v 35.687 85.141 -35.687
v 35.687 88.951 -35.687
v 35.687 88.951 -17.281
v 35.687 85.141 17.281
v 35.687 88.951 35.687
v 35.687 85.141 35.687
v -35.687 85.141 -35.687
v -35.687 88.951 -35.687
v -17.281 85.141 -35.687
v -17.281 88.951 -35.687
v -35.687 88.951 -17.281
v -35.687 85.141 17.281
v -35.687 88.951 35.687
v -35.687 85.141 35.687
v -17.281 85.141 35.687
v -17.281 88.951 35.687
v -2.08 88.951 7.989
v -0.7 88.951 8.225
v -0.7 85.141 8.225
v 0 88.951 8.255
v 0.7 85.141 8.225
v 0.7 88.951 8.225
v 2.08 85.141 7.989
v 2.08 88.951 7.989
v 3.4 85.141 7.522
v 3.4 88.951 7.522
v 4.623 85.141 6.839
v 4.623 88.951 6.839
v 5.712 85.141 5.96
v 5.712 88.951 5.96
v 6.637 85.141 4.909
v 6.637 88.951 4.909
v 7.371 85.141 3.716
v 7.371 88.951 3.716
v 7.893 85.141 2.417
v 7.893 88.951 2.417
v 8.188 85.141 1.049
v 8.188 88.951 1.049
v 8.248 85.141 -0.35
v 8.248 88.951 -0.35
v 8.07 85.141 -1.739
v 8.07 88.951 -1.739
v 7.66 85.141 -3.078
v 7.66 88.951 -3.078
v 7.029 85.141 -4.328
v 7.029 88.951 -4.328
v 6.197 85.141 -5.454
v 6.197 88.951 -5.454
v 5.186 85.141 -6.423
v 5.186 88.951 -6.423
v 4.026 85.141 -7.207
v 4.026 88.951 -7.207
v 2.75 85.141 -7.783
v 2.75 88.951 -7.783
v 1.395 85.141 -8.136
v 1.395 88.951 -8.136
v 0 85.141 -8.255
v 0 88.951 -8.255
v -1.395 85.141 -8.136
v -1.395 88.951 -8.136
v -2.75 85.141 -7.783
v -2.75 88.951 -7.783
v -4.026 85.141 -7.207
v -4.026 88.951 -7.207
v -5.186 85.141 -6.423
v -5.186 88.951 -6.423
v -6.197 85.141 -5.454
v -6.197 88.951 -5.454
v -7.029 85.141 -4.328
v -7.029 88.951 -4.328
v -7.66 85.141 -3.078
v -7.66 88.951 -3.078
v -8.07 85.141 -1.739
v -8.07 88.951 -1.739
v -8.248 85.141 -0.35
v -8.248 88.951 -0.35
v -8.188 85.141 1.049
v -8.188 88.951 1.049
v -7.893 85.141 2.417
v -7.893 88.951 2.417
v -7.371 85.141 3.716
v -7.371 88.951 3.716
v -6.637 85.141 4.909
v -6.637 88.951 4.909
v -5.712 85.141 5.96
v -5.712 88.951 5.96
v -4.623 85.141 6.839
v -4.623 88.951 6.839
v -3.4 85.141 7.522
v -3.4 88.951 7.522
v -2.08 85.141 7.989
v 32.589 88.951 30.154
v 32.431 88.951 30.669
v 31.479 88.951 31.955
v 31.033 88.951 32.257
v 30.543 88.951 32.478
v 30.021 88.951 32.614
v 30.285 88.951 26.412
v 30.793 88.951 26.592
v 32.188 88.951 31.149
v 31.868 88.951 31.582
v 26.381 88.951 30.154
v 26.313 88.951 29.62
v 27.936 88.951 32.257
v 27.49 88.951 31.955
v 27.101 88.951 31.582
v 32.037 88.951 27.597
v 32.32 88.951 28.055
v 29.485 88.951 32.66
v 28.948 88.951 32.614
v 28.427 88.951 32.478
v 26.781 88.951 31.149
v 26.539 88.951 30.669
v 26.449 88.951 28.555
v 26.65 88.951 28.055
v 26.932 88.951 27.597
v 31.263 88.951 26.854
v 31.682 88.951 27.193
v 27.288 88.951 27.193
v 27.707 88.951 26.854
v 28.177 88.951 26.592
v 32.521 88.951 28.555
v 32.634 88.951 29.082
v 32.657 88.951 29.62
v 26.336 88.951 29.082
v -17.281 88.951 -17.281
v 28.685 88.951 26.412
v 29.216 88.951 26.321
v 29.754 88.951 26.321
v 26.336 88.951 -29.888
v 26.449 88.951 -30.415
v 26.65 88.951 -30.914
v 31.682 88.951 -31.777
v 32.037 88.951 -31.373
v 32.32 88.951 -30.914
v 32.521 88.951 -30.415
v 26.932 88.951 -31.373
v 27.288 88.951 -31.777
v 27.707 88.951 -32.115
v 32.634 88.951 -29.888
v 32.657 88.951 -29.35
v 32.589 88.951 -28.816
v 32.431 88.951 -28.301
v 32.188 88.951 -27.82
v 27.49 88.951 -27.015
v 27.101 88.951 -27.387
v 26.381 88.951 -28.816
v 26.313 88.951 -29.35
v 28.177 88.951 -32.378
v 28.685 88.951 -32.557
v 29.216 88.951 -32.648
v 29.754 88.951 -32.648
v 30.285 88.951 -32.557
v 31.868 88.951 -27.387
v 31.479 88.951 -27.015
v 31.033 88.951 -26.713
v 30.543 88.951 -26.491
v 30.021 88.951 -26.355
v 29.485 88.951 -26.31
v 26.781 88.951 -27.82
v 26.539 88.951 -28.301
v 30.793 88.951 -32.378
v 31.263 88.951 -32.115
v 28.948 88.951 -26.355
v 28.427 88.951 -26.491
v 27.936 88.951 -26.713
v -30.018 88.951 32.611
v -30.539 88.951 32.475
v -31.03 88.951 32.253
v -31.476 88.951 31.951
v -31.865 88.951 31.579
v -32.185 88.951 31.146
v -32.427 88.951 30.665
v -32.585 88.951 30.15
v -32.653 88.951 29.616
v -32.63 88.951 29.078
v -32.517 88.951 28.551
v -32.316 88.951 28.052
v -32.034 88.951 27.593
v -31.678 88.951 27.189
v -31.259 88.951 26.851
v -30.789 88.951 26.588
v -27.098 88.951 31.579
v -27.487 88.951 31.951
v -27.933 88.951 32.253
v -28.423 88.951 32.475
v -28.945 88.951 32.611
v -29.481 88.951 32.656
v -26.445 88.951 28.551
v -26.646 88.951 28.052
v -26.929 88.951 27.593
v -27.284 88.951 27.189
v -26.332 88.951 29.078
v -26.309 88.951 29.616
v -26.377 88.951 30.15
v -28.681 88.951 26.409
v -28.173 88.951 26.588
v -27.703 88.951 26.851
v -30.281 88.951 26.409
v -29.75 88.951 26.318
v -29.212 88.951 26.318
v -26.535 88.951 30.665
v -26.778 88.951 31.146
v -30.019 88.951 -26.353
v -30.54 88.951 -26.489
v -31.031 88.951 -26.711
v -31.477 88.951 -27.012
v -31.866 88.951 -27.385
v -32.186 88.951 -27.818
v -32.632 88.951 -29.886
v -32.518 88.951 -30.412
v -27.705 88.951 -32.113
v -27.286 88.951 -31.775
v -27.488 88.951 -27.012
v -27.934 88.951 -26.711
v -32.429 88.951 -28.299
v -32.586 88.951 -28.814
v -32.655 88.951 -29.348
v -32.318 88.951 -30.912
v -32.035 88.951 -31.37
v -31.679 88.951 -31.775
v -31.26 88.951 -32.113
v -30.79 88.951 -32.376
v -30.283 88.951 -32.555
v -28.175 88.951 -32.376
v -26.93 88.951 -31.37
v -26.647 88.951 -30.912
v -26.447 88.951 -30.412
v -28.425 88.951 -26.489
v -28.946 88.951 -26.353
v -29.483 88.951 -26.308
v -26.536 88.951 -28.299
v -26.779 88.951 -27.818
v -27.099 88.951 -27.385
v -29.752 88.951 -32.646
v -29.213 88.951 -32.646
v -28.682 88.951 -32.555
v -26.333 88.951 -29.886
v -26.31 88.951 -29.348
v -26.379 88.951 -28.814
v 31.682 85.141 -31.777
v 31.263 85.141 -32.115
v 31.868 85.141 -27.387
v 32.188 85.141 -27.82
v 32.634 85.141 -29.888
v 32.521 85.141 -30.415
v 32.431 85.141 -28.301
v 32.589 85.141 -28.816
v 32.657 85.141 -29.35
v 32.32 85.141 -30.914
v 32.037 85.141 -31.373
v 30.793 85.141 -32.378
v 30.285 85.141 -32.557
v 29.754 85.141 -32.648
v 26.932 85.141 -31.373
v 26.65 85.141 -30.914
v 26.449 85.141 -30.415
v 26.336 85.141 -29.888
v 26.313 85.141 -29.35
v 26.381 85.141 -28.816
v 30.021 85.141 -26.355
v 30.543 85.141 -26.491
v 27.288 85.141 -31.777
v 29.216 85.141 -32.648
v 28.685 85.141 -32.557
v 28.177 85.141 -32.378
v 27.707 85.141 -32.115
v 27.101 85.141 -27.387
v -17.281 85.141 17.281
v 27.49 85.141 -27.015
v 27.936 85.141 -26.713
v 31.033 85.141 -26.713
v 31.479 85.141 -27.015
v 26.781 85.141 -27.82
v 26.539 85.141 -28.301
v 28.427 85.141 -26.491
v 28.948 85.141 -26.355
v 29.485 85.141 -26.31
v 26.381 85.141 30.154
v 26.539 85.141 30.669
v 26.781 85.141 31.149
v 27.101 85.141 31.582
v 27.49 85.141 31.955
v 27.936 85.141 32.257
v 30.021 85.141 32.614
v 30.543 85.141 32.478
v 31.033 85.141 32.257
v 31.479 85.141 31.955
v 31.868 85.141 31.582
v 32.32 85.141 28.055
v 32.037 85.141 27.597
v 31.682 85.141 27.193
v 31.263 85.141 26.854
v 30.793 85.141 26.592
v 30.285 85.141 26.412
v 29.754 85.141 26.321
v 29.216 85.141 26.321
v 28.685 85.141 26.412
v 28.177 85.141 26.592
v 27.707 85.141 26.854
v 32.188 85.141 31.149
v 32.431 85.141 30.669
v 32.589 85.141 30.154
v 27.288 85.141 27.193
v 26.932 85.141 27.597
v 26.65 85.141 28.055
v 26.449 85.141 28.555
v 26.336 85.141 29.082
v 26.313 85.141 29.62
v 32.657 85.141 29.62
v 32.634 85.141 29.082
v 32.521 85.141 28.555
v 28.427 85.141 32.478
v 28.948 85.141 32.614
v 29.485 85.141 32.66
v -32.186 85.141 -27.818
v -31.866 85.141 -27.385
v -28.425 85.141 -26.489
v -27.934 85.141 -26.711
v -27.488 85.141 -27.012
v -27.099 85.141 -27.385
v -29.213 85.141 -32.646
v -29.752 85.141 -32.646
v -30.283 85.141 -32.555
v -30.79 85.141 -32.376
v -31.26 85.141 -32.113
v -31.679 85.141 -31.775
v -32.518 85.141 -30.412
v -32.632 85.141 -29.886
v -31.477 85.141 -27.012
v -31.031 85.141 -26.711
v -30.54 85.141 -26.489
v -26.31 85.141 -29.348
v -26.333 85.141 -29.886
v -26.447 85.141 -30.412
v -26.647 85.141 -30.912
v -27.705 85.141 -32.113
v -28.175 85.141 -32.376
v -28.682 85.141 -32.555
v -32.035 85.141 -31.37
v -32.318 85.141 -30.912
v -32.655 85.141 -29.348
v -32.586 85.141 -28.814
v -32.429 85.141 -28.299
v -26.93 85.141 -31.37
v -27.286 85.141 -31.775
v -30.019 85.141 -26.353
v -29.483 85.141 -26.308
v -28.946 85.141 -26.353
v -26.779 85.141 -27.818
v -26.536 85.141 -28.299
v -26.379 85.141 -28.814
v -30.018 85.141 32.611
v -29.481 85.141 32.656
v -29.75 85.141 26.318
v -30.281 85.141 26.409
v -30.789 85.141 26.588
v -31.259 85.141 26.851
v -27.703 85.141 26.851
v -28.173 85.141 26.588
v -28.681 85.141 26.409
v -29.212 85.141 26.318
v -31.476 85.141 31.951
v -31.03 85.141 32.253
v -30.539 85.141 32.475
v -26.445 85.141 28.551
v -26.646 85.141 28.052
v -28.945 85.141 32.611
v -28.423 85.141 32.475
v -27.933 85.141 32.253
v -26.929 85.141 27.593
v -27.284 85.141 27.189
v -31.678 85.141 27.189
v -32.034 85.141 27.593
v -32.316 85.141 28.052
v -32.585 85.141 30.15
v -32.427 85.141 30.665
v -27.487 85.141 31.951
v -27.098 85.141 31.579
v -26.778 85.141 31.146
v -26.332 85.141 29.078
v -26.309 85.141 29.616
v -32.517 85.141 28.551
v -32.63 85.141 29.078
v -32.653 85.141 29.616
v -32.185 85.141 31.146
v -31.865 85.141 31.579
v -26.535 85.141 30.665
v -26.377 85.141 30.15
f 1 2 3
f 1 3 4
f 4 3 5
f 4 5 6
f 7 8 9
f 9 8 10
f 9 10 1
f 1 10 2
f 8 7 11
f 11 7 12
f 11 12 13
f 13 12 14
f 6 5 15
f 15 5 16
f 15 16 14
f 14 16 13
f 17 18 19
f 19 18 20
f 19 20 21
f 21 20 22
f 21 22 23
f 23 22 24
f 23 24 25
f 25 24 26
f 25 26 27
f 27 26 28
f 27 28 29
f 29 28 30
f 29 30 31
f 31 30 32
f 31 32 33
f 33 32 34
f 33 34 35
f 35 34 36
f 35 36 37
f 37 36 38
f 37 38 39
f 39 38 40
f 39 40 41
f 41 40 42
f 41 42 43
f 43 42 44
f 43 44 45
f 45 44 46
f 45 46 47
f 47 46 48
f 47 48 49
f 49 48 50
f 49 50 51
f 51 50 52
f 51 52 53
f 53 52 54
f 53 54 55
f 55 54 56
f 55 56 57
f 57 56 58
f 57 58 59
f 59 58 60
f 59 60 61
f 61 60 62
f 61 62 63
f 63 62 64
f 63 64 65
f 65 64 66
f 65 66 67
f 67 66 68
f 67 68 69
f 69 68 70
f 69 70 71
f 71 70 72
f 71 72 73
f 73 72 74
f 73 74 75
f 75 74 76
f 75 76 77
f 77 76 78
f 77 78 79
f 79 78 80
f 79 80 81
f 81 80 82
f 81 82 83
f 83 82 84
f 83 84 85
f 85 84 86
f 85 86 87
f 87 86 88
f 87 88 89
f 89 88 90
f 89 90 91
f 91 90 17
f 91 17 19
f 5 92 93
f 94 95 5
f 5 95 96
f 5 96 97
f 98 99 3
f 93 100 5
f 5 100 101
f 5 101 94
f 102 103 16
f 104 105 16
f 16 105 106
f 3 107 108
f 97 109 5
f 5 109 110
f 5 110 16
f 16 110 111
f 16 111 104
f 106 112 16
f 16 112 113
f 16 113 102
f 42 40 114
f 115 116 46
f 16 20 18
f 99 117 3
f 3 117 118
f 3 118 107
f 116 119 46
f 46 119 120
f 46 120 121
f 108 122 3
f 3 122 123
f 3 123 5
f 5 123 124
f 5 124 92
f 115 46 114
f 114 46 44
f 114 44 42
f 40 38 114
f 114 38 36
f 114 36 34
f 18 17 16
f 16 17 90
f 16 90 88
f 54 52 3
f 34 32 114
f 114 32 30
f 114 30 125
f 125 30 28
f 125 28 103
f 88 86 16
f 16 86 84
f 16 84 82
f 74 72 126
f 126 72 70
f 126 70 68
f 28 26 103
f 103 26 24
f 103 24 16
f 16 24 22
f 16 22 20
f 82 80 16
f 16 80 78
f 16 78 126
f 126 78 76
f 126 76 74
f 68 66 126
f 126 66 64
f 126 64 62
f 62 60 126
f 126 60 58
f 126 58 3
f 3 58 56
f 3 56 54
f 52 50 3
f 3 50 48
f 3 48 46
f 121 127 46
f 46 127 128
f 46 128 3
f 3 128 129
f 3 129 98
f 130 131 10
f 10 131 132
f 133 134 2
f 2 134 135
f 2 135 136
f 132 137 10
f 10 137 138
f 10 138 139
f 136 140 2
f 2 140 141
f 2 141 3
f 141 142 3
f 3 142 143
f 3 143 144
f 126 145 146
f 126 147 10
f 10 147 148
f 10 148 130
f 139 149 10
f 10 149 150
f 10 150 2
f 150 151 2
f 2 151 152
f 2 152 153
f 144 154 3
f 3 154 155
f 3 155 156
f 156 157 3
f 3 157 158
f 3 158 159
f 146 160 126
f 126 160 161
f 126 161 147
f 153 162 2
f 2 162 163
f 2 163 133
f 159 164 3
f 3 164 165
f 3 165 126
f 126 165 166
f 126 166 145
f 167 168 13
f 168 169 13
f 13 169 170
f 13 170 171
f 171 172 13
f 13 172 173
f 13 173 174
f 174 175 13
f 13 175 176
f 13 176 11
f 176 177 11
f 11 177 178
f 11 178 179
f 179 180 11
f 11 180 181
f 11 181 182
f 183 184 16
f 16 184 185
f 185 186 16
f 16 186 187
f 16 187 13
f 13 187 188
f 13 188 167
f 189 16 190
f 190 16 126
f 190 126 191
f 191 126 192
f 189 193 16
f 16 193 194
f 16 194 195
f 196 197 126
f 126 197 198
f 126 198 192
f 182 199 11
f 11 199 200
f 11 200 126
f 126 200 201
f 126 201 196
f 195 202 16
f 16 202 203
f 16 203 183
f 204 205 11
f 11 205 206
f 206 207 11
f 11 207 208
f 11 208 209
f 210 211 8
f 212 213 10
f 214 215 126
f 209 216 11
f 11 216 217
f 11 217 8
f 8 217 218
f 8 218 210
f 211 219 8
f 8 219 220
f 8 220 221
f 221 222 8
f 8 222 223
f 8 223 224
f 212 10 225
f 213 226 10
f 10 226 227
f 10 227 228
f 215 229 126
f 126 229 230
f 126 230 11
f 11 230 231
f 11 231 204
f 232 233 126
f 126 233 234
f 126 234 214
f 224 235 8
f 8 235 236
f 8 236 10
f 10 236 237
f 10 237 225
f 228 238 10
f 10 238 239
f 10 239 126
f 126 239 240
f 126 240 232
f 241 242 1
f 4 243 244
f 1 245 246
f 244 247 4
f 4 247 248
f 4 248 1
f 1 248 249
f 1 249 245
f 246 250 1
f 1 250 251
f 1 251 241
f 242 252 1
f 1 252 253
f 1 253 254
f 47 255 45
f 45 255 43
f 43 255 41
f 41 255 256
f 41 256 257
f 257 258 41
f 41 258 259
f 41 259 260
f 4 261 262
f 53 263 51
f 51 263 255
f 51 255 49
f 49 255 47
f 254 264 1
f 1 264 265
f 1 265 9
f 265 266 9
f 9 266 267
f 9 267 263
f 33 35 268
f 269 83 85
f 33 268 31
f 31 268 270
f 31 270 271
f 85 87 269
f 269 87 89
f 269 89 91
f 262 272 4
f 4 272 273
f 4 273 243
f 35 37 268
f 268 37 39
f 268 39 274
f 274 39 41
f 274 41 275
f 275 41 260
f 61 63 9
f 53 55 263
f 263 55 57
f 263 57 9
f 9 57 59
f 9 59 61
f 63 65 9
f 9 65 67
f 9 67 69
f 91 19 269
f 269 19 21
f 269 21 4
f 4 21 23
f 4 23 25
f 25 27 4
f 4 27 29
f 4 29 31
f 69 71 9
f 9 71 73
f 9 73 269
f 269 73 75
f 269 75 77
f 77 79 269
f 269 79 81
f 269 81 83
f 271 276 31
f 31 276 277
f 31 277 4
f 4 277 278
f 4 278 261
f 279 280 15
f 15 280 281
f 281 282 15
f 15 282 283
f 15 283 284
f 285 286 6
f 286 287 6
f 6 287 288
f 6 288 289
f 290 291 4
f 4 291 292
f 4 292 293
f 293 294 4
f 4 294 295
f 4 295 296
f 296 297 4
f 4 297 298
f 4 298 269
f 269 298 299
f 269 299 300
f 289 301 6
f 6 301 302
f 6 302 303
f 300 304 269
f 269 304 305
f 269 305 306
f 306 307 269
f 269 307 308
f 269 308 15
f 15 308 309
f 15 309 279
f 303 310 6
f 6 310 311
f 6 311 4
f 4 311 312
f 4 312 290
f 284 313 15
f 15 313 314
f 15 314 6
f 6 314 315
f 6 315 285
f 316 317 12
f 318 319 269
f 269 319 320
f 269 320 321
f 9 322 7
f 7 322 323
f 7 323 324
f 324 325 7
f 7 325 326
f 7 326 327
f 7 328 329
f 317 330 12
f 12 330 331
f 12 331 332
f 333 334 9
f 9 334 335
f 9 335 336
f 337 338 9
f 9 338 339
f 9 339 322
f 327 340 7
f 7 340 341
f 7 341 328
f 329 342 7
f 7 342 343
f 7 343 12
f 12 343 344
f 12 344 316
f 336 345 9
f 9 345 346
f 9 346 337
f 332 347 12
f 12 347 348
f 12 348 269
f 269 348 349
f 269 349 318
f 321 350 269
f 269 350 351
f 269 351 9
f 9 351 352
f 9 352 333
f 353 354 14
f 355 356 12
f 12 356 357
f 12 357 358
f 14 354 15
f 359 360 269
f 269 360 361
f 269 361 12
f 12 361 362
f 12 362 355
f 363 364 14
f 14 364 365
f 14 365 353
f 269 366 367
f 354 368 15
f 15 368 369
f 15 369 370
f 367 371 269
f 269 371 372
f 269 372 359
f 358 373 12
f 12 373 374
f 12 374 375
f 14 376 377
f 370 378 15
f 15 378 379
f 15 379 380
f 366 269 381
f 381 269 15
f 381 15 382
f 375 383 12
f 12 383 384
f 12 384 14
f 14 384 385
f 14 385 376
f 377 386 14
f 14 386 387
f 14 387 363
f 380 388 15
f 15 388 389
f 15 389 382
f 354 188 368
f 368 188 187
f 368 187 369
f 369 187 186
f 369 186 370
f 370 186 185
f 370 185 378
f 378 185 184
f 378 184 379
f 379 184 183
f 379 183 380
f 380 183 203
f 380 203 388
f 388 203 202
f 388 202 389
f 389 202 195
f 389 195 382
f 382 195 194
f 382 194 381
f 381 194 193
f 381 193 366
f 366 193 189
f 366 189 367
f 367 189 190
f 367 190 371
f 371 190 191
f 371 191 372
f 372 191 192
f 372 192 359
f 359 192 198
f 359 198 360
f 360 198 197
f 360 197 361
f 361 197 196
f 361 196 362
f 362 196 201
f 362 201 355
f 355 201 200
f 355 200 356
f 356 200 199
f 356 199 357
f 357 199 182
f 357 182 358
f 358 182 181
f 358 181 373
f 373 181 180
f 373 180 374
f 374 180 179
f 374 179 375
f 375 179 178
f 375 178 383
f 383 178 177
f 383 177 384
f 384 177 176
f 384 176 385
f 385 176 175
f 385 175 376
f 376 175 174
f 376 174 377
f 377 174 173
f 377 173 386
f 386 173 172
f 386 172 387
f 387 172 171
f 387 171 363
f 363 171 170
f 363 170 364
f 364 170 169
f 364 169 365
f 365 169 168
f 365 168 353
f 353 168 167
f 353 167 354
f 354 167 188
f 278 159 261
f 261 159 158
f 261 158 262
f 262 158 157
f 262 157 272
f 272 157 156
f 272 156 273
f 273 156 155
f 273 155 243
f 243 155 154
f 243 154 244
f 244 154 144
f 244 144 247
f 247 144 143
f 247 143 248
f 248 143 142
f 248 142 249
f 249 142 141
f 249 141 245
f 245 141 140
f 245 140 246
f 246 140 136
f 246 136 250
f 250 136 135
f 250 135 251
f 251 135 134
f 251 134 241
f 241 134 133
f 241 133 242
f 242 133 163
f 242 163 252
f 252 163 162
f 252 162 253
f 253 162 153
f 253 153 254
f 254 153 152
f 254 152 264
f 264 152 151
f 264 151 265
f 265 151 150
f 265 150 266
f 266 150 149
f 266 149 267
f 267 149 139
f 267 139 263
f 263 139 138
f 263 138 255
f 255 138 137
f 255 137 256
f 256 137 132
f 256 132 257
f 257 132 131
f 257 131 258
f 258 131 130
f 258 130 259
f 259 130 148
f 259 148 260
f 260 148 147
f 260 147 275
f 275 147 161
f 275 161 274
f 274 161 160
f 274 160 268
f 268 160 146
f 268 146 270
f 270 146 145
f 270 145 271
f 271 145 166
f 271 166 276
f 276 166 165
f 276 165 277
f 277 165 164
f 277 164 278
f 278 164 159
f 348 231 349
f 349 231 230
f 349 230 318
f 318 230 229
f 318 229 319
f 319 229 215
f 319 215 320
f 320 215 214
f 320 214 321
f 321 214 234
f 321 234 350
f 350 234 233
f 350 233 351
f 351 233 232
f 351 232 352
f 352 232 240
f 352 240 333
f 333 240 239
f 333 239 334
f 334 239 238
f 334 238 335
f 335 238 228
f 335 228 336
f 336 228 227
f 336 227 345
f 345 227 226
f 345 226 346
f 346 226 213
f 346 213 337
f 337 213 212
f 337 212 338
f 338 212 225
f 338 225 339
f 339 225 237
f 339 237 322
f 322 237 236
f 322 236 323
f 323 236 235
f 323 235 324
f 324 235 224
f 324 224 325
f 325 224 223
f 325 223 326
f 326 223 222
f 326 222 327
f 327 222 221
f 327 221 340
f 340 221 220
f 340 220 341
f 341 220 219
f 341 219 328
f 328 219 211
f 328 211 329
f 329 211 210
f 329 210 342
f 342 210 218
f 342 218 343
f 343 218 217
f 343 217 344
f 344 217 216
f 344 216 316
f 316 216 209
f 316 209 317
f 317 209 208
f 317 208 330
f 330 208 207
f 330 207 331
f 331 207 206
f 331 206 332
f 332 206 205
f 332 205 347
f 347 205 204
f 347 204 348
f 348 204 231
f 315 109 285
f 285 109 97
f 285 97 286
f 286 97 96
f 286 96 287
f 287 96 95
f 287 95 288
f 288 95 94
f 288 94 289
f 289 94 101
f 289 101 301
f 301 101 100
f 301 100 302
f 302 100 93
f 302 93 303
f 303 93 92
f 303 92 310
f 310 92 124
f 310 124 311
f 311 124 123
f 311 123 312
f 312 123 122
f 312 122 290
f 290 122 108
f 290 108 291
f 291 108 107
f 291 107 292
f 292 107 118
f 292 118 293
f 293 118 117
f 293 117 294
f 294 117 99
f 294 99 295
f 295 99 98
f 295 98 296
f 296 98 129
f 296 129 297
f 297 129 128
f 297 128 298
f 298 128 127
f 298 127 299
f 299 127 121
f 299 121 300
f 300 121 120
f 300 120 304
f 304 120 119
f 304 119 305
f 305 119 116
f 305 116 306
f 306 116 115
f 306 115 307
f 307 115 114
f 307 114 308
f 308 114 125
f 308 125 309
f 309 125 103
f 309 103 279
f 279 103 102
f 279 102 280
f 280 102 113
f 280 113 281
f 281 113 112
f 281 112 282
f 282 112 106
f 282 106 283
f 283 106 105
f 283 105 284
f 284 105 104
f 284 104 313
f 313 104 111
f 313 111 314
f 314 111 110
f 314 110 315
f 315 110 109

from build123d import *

# Parameters (mm, degrees)
SKETCH3_W            = 71.374
SKETCH3_H            = 71.374
BOSS_EXTRUDE1_DEPTH  = 88.9508
SHELL1_T             = 5.08
CUT_EXTRUDE1_REACH   = 7.08
SKETCH4_R            = 8.255
SKETCH15_OUTSIDE_W   = 100.282
SKETCH15_OUTSIDE_H   = 117.859
SKETCH15_OUTSIDE_W_2 = 71.374
SKETCH15_OUTSIDE_H_2 = 3.81
CUT_EXTRUDE14_DEPTH  = 72.374
CUT_EXTRUDE15_START  = 88.9508
SKETCH20_R           = 3.175
CUT_EXTRUDE15_DEPTH  = 89.9508
SKETCH6_W            = 71.374
SKETCH6_H            = 5.08
CUT_EXTRUDE3_DEPTH   = 5.08


with BuildPart() as part:
    # Sketch3 → Boss-Extrude1 (new body)
    with BuildSketch(Plane(origin=(0, 0, 0), x_dir=(1, 0, 0), z_dir=(0, 1, 0))):
        Rectangle(SKETCH3_W, SKETCH3_H)
    extrude(amount=BOSS_EXTRUDE1_DEPTH)

    # Shell1 (no face opened: a closed hollow body)
    add(offset(amount=-SHELL1_T, mode=Mode.PRIVATE), mode=Mode.SUBTRACT)

    # Sketch4 → Cut-Extrude1 (cut, up to next)
    with BuildSketch(Plane(origin=(0, 83.8708, 0), x_dir=(-1, 0, 0), z_dir=(0, -1, 0)), mode=Mode.PRIVATE) as cut_extrude1_sk1:
        Circle(SKETCH4_R)
    cut_extrude1_tool1 = extrude(cut_extrude1_sk1.sketch, amount=-CUT_EXTRUDE1_REACH, mode=Mode.PRIVATE) & part.part
    add(cut_extrude1_tool1.solids().sort_by_distance((0, 83.8708, 0))[0], mode=Mode.SUBTRACT)

    # Sketch15 outside → Cut-Extrude14 (cut, through all)
    with BuildSketch(Plane.XY.offset(35.687)):
        with Locations((0, 44.4755)):
            Rectangle(SKETCH15_OUTSIDE_W, SKETCH15_OUTSIDE_H)
        with Locations((0, 87.0458)):
            Rectangle(SKETCH15_OUTSIDE_W_2, SKETCH15_OUTSIDE_H_2, mode=Mode.SUBTRACT)
    extrude(amount=-CUT_EXTRUDE14_DEPTH, mode=Mode.SUBTRACT)

    # Sketch20 → Cut-Extrude15 (cut, through all)
    with BuildSketch(Plane(origin=(0, 0, 0), x_dir=(1, 0, 0), z_dir=(0, 1, 0)).offset(CUT_EXTRUDE15_START)):
        with Locations((-29.482513587, 29.482513587)):
            Circle(SKETCH20_R)
        with Locations((29.484795022, -29.484795022)):
            Circle(SKETCH20_R)
        with Locations((-29.48121109, -29.48121109)):
            Circle(SKETCH20_R)
        with Locations((29.484795022, 29.484795022)):
            Circle(SKETCH20_R)
    extrude(amount=-CUT_EXTRUDE15_DEPTH, mode=Mode.SUBTRACT)

    # Sketch6 → Cut-Extrude3 (cut)
    with BuildSketch(Plane(origin=(0, 0, 30.607), x_dir=(-1, 0, 0), z_dir=(0, 0, -1))):
        with Locations((0, 2.54)):
            Rectangle(SKETCH6_W, SKETCH6_H)
    extrude(amount=-CUT_EXTRUDE3_DEPTH, mode=Mode.SUBTRACT)


solid = part.part
